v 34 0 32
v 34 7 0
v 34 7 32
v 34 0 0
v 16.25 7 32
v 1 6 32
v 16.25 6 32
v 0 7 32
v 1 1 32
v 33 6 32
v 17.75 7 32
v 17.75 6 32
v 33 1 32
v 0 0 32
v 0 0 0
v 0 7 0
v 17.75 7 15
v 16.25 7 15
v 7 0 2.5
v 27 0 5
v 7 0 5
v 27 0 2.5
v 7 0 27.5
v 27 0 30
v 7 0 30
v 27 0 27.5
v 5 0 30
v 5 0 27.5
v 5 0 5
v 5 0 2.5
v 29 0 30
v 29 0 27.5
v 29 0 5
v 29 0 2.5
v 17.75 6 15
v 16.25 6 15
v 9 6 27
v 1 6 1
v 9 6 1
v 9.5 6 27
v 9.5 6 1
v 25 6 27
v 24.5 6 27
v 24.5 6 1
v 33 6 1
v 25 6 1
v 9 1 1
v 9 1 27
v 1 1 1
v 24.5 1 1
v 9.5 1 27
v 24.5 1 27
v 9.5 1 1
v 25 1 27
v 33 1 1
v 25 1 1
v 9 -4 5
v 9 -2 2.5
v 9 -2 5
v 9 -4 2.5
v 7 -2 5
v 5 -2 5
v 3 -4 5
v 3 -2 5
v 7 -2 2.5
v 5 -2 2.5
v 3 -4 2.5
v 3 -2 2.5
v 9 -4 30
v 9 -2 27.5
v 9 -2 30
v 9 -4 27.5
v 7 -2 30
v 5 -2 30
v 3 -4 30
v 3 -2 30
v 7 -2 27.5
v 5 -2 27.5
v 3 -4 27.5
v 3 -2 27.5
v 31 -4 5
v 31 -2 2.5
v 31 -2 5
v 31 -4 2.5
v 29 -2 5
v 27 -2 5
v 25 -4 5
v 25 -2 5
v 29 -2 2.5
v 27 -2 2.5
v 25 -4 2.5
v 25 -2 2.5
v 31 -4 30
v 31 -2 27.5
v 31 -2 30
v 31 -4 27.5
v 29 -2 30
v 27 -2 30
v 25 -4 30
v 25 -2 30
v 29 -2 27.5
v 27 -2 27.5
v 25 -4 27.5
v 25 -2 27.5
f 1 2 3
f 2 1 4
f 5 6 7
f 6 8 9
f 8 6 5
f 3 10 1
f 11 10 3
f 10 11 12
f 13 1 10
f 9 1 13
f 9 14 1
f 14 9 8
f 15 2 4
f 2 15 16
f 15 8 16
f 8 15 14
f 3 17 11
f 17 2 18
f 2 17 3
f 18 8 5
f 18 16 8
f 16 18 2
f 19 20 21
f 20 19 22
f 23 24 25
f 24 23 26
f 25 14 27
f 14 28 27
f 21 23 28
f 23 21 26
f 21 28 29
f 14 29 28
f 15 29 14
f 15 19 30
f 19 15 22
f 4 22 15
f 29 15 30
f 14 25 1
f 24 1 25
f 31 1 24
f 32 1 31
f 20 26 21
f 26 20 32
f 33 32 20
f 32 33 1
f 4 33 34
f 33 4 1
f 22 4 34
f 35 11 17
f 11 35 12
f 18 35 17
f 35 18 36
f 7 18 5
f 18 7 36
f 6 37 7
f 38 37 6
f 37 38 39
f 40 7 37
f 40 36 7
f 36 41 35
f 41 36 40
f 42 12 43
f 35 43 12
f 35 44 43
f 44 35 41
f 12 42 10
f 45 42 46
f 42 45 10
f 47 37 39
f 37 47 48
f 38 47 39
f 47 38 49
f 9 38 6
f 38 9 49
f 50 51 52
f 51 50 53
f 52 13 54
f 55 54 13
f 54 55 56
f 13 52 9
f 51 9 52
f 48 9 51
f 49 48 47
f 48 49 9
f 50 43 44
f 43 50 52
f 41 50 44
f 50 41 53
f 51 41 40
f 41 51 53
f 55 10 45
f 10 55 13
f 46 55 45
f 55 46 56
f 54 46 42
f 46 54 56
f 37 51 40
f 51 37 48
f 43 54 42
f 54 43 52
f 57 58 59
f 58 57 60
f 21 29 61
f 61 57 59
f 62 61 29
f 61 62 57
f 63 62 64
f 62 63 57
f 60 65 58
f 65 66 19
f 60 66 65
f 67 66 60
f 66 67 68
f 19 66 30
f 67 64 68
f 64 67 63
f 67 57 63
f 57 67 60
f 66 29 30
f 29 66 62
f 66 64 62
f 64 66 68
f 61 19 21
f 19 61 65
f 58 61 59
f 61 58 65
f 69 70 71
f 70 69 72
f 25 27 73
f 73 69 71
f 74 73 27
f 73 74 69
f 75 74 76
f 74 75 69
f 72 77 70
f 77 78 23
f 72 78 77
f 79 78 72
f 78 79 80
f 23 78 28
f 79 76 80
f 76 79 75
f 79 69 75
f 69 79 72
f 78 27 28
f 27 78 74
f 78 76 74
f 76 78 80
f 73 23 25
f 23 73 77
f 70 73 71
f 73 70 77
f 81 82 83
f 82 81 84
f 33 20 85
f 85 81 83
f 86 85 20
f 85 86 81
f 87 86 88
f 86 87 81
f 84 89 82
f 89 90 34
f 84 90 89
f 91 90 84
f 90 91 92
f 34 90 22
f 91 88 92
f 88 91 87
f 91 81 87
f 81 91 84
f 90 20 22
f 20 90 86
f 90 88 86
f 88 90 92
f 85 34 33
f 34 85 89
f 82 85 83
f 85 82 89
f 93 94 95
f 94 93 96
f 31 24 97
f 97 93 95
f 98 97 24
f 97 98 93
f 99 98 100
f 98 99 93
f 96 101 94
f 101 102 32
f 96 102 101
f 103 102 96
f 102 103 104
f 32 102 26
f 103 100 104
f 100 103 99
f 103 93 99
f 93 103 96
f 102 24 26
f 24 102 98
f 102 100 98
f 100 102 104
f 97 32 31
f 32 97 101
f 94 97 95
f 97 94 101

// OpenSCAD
width = 34;
height = 32;
depth = 7;
inner_width = 32;
inner_height = 40;
inner_depth = 5;
thickness = 1;
mini_thickness = 0.5;
slit_1_width = 8;
slit_2_width = 15;
slit_3_width = 8;
slee_width = 1.5;
lower_gap = 5;

module peg(x, y, z)
{
    peg_width = 6;
    peg_height = 5;
    peg_bar_height = 2;
    peg_bar_leg = 2;
    peg_thickness = 2.5;
    
    // Potision T add-on in right position.
    translate([
        x - (peg_width / 2), 
        y - (peg_bar_height + peg_bar_leg), 
        z - (peg_bar_height / 2)])
    {
        difference()
        {
            // Corpus.
            cube([
                peg_width, 
                peg_bar_height + peg_bar_leg, 
                peg_thickness]);
            
            // Left-under T cut-out.
            translate([0, peg_bar_height, 0])
            {
                cube([
                    peg_bar_height, 
                    peg_bar_leg, 
                    peg_thickness]);
            }
           
            // Right-under T cut-out.
            translate([
                peg_width-peg_bar_height, 
                peg_bar_height, 
                0])
            {
                cube([
                    peg_bar_height, 
                    peg_bar_leg, 
                    peg_thickness]);
            }
        }
    }
}



translate([0, 0, 0])
{
    difference()
    {
        // Corpus.
        cube([width, depth, height]);
        
        // Schuifsleuf.
        translate([(width - slee_width) / 2, depth - thickness, 15])
        {
            cube([slee_width, thickness, height]);
        }
        
        // Inkeping 1.
        translate([thickness, thickness, thickness])
        {
            cube([slit_1_width, inner_depth, inner_height]);
        }
        
        // Inkeping 2.
        translate([thickness + slit_1_width + mini_thickness, 
            thickness, thickness])
        {
            cube([slit_2_width, inner_depth, inner_height]);
        }
        
        // Inkeping 3.
        translate([thickness + slit_1_width + mini_thickness + slit_2_width + mini_thickness, thickness, thickness])
        {
            cube([slit_3_width, inner_depth, inner_height]);
        }
        
        // Empty topside.
        translate([
            thickness,
            thickness, 
            height - lower_gap])
        {
            cube([
                width - thickness - thickness,
                depth - thickness - thickness,
                lower_gap]);
        }
    }
}

peg_dist = 7;
peg(peg_dist - 1, 0, peg_dist / 2);
peg(peg_dist - 1, 0, height - (peg_dist / 2));
peg(width - peg_dist + 1, 0, peg_dist / 2);
peg(width - peg_dist + 1, 0, height - (peg_dist / 2));
